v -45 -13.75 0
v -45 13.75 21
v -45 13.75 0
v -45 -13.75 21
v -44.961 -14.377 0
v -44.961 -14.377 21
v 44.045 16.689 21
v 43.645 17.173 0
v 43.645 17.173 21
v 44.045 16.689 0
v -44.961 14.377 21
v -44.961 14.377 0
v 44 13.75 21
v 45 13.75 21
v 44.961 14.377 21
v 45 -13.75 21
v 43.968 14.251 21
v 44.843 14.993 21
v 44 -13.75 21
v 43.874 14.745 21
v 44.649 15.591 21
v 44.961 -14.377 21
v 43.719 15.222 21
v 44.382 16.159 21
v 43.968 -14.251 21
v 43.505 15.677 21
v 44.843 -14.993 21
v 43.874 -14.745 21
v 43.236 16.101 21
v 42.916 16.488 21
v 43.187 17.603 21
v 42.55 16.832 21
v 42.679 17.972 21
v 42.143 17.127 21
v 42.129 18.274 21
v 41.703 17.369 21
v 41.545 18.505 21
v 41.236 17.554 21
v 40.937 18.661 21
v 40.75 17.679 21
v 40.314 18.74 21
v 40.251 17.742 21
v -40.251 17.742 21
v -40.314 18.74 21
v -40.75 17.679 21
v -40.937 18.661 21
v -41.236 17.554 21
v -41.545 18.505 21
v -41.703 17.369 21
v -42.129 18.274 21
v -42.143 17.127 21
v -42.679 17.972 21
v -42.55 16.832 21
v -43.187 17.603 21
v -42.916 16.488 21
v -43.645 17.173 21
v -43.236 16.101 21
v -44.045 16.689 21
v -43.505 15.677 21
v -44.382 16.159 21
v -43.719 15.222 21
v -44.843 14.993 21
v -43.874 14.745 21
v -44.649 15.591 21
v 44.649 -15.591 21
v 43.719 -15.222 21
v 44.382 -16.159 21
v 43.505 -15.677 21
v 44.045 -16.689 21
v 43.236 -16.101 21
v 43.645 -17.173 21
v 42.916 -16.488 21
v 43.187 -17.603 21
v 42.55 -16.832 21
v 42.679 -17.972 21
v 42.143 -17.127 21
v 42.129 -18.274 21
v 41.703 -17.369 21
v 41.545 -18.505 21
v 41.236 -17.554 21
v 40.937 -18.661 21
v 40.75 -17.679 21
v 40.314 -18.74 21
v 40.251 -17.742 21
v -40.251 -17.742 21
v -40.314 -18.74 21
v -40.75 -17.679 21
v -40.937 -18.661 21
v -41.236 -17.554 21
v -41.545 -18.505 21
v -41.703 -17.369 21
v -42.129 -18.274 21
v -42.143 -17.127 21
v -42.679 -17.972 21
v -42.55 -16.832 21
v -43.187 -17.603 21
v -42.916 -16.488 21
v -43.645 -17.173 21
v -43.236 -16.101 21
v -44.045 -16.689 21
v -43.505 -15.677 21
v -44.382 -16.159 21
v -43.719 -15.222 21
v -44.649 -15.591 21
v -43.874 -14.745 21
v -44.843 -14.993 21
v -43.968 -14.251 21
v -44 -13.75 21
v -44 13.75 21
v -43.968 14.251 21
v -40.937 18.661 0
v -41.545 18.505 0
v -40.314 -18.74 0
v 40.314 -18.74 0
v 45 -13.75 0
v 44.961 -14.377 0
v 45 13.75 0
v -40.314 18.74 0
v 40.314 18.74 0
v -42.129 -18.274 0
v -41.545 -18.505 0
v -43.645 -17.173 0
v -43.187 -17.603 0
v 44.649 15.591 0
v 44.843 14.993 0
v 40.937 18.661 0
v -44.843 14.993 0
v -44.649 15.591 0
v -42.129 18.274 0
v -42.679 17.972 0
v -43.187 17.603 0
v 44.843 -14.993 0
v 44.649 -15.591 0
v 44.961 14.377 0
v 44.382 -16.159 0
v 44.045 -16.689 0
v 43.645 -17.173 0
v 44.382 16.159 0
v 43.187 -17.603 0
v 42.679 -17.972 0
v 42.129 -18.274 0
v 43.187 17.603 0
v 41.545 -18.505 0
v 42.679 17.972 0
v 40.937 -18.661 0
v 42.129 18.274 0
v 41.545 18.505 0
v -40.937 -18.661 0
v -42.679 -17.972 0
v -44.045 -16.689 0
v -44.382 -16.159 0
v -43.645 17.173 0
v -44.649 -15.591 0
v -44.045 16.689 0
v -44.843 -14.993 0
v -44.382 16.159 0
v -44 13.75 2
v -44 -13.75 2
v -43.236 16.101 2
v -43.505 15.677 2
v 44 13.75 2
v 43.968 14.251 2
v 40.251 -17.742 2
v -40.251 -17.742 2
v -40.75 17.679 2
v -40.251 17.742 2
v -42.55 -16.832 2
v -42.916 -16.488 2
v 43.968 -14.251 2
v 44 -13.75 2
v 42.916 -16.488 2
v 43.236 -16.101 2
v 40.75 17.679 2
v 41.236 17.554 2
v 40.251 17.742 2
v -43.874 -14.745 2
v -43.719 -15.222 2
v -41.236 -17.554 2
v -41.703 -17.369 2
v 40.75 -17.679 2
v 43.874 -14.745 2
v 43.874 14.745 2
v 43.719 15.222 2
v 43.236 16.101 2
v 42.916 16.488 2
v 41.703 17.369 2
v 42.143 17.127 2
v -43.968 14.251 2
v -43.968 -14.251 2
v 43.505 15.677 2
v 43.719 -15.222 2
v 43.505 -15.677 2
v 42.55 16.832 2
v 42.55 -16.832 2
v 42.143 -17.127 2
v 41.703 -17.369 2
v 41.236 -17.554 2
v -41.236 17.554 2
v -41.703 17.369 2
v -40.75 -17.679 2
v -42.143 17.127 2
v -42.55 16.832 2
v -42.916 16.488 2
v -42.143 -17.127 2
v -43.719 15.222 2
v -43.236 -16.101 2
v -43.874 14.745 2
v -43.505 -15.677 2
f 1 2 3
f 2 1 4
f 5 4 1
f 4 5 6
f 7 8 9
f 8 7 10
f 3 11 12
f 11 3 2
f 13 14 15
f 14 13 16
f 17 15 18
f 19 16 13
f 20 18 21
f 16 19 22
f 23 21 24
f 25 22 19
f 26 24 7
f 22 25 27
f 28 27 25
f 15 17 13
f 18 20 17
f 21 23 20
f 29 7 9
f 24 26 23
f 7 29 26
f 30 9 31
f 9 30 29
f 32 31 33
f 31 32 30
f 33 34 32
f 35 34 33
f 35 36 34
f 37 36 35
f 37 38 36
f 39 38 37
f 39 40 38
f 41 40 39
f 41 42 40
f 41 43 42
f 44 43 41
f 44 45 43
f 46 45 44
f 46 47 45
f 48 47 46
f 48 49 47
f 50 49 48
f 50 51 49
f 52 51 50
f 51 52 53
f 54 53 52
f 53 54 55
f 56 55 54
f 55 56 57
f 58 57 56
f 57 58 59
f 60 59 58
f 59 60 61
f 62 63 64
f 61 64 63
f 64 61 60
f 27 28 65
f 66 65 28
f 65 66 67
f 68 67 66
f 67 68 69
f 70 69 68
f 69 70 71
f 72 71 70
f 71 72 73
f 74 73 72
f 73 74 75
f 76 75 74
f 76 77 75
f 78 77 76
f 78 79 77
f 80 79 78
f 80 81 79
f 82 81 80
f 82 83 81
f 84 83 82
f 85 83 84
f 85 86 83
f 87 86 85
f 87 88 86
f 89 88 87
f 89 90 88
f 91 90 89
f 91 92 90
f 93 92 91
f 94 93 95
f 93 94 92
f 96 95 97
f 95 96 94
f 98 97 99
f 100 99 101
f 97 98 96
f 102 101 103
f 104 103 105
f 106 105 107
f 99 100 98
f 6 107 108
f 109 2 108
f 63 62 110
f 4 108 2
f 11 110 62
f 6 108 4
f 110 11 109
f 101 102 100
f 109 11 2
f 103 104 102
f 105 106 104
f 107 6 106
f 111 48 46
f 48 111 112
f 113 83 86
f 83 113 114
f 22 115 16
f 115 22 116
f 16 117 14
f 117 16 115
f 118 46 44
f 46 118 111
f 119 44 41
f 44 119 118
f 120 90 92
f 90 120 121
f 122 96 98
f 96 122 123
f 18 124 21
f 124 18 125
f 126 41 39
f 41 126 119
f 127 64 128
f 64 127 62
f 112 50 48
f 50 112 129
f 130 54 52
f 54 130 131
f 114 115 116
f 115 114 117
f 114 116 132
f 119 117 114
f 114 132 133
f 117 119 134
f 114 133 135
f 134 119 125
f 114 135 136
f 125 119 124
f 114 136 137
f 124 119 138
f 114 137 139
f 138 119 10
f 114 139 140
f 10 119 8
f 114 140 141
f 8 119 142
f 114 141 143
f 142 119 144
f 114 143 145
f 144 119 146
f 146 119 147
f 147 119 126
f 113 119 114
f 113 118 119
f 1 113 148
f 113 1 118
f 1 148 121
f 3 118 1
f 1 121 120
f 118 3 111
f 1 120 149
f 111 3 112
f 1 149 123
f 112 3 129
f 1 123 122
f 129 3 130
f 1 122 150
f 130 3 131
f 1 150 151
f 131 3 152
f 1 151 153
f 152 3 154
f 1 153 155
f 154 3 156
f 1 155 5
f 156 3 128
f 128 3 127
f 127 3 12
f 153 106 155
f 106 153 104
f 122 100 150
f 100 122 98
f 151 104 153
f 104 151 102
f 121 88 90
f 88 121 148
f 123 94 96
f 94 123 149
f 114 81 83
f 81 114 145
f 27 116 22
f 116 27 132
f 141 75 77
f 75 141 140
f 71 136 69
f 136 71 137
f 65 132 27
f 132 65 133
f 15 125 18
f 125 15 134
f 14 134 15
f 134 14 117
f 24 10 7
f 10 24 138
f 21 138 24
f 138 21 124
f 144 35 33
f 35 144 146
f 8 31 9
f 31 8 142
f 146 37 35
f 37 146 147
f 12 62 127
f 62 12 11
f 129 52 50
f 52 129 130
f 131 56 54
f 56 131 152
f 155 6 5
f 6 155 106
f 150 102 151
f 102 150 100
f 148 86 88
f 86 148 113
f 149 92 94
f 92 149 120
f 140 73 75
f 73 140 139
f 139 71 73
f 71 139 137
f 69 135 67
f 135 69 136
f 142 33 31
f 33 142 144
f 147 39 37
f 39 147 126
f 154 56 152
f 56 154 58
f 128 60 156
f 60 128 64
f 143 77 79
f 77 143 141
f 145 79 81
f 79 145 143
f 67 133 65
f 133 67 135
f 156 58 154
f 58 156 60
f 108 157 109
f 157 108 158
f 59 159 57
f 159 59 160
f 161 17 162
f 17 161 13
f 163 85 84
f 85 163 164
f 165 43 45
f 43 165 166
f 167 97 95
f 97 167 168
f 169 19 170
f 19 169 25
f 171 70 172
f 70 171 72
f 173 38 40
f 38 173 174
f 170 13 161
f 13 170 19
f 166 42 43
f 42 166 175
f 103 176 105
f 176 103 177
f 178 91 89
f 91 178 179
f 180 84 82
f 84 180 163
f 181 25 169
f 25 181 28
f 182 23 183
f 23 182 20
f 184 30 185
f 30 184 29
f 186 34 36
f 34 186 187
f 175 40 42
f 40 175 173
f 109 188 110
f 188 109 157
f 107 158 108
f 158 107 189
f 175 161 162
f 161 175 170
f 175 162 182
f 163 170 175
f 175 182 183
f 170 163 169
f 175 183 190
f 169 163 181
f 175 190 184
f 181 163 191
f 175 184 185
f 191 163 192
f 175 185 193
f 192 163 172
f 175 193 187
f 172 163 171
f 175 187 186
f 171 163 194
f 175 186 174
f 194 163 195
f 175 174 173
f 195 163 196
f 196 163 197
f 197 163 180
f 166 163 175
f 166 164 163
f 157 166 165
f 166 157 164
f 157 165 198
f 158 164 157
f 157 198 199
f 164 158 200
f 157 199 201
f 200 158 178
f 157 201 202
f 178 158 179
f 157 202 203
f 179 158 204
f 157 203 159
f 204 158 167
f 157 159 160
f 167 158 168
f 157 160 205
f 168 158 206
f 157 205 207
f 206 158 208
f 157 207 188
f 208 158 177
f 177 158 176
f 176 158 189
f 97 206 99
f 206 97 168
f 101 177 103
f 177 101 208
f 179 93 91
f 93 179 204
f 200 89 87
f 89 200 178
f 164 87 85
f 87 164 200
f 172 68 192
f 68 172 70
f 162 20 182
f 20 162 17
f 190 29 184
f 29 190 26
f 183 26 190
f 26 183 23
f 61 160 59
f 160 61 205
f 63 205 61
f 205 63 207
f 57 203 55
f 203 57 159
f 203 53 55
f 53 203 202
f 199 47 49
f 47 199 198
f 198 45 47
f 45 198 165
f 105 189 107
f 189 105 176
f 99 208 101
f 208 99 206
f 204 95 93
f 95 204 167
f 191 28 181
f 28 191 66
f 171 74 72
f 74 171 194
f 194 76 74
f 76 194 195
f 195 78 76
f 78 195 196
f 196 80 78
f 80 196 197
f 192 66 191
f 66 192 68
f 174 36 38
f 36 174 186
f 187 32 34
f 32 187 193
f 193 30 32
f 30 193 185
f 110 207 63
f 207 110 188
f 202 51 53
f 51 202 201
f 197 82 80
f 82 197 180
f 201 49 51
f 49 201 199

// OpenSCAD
$fn = 50;


difference() {
	union() {
		hull() {
			translate(v = [-40.0000000000, 13.7500000000, 0]) {
				cylinder(h = 21, r = 5);
			}
			translate(v = [40.0000000000, 13.7500000000, 0]) {
				cylinder(h = 21, r = 5);
			}
			translate(v = [-40.0000000000, -13.7500000000, 0]) {
				cylinder(h = 21, r = 5);
			}
			translate(v = [40.0000000000, -13.7500000000, 0]) {
				cylinder(h = 21, r = 5);
			}
		}
	}
	union() {
		translate(v = [0, 0, 2]) {
			#hull() {
				translate(v = [-40.0000000000, 13.7500000000, 0]) {
					cylinder(h = 19, r = 4);
				}
				translate(v = [40.0000000000, 13.7500000000, 0]) {
					cylinder(h = 19, r = 4);
				}
				translate(v = [-40.0000000000, -13.7500000000, 0]) {
					cylinder(h = 19, r = 4);
				}
				translate(v = [40.0000000000, -13.7500000000, 0]) {
					cylinder(h = 19, r = 4);
				}
			}
		}
	}
}
